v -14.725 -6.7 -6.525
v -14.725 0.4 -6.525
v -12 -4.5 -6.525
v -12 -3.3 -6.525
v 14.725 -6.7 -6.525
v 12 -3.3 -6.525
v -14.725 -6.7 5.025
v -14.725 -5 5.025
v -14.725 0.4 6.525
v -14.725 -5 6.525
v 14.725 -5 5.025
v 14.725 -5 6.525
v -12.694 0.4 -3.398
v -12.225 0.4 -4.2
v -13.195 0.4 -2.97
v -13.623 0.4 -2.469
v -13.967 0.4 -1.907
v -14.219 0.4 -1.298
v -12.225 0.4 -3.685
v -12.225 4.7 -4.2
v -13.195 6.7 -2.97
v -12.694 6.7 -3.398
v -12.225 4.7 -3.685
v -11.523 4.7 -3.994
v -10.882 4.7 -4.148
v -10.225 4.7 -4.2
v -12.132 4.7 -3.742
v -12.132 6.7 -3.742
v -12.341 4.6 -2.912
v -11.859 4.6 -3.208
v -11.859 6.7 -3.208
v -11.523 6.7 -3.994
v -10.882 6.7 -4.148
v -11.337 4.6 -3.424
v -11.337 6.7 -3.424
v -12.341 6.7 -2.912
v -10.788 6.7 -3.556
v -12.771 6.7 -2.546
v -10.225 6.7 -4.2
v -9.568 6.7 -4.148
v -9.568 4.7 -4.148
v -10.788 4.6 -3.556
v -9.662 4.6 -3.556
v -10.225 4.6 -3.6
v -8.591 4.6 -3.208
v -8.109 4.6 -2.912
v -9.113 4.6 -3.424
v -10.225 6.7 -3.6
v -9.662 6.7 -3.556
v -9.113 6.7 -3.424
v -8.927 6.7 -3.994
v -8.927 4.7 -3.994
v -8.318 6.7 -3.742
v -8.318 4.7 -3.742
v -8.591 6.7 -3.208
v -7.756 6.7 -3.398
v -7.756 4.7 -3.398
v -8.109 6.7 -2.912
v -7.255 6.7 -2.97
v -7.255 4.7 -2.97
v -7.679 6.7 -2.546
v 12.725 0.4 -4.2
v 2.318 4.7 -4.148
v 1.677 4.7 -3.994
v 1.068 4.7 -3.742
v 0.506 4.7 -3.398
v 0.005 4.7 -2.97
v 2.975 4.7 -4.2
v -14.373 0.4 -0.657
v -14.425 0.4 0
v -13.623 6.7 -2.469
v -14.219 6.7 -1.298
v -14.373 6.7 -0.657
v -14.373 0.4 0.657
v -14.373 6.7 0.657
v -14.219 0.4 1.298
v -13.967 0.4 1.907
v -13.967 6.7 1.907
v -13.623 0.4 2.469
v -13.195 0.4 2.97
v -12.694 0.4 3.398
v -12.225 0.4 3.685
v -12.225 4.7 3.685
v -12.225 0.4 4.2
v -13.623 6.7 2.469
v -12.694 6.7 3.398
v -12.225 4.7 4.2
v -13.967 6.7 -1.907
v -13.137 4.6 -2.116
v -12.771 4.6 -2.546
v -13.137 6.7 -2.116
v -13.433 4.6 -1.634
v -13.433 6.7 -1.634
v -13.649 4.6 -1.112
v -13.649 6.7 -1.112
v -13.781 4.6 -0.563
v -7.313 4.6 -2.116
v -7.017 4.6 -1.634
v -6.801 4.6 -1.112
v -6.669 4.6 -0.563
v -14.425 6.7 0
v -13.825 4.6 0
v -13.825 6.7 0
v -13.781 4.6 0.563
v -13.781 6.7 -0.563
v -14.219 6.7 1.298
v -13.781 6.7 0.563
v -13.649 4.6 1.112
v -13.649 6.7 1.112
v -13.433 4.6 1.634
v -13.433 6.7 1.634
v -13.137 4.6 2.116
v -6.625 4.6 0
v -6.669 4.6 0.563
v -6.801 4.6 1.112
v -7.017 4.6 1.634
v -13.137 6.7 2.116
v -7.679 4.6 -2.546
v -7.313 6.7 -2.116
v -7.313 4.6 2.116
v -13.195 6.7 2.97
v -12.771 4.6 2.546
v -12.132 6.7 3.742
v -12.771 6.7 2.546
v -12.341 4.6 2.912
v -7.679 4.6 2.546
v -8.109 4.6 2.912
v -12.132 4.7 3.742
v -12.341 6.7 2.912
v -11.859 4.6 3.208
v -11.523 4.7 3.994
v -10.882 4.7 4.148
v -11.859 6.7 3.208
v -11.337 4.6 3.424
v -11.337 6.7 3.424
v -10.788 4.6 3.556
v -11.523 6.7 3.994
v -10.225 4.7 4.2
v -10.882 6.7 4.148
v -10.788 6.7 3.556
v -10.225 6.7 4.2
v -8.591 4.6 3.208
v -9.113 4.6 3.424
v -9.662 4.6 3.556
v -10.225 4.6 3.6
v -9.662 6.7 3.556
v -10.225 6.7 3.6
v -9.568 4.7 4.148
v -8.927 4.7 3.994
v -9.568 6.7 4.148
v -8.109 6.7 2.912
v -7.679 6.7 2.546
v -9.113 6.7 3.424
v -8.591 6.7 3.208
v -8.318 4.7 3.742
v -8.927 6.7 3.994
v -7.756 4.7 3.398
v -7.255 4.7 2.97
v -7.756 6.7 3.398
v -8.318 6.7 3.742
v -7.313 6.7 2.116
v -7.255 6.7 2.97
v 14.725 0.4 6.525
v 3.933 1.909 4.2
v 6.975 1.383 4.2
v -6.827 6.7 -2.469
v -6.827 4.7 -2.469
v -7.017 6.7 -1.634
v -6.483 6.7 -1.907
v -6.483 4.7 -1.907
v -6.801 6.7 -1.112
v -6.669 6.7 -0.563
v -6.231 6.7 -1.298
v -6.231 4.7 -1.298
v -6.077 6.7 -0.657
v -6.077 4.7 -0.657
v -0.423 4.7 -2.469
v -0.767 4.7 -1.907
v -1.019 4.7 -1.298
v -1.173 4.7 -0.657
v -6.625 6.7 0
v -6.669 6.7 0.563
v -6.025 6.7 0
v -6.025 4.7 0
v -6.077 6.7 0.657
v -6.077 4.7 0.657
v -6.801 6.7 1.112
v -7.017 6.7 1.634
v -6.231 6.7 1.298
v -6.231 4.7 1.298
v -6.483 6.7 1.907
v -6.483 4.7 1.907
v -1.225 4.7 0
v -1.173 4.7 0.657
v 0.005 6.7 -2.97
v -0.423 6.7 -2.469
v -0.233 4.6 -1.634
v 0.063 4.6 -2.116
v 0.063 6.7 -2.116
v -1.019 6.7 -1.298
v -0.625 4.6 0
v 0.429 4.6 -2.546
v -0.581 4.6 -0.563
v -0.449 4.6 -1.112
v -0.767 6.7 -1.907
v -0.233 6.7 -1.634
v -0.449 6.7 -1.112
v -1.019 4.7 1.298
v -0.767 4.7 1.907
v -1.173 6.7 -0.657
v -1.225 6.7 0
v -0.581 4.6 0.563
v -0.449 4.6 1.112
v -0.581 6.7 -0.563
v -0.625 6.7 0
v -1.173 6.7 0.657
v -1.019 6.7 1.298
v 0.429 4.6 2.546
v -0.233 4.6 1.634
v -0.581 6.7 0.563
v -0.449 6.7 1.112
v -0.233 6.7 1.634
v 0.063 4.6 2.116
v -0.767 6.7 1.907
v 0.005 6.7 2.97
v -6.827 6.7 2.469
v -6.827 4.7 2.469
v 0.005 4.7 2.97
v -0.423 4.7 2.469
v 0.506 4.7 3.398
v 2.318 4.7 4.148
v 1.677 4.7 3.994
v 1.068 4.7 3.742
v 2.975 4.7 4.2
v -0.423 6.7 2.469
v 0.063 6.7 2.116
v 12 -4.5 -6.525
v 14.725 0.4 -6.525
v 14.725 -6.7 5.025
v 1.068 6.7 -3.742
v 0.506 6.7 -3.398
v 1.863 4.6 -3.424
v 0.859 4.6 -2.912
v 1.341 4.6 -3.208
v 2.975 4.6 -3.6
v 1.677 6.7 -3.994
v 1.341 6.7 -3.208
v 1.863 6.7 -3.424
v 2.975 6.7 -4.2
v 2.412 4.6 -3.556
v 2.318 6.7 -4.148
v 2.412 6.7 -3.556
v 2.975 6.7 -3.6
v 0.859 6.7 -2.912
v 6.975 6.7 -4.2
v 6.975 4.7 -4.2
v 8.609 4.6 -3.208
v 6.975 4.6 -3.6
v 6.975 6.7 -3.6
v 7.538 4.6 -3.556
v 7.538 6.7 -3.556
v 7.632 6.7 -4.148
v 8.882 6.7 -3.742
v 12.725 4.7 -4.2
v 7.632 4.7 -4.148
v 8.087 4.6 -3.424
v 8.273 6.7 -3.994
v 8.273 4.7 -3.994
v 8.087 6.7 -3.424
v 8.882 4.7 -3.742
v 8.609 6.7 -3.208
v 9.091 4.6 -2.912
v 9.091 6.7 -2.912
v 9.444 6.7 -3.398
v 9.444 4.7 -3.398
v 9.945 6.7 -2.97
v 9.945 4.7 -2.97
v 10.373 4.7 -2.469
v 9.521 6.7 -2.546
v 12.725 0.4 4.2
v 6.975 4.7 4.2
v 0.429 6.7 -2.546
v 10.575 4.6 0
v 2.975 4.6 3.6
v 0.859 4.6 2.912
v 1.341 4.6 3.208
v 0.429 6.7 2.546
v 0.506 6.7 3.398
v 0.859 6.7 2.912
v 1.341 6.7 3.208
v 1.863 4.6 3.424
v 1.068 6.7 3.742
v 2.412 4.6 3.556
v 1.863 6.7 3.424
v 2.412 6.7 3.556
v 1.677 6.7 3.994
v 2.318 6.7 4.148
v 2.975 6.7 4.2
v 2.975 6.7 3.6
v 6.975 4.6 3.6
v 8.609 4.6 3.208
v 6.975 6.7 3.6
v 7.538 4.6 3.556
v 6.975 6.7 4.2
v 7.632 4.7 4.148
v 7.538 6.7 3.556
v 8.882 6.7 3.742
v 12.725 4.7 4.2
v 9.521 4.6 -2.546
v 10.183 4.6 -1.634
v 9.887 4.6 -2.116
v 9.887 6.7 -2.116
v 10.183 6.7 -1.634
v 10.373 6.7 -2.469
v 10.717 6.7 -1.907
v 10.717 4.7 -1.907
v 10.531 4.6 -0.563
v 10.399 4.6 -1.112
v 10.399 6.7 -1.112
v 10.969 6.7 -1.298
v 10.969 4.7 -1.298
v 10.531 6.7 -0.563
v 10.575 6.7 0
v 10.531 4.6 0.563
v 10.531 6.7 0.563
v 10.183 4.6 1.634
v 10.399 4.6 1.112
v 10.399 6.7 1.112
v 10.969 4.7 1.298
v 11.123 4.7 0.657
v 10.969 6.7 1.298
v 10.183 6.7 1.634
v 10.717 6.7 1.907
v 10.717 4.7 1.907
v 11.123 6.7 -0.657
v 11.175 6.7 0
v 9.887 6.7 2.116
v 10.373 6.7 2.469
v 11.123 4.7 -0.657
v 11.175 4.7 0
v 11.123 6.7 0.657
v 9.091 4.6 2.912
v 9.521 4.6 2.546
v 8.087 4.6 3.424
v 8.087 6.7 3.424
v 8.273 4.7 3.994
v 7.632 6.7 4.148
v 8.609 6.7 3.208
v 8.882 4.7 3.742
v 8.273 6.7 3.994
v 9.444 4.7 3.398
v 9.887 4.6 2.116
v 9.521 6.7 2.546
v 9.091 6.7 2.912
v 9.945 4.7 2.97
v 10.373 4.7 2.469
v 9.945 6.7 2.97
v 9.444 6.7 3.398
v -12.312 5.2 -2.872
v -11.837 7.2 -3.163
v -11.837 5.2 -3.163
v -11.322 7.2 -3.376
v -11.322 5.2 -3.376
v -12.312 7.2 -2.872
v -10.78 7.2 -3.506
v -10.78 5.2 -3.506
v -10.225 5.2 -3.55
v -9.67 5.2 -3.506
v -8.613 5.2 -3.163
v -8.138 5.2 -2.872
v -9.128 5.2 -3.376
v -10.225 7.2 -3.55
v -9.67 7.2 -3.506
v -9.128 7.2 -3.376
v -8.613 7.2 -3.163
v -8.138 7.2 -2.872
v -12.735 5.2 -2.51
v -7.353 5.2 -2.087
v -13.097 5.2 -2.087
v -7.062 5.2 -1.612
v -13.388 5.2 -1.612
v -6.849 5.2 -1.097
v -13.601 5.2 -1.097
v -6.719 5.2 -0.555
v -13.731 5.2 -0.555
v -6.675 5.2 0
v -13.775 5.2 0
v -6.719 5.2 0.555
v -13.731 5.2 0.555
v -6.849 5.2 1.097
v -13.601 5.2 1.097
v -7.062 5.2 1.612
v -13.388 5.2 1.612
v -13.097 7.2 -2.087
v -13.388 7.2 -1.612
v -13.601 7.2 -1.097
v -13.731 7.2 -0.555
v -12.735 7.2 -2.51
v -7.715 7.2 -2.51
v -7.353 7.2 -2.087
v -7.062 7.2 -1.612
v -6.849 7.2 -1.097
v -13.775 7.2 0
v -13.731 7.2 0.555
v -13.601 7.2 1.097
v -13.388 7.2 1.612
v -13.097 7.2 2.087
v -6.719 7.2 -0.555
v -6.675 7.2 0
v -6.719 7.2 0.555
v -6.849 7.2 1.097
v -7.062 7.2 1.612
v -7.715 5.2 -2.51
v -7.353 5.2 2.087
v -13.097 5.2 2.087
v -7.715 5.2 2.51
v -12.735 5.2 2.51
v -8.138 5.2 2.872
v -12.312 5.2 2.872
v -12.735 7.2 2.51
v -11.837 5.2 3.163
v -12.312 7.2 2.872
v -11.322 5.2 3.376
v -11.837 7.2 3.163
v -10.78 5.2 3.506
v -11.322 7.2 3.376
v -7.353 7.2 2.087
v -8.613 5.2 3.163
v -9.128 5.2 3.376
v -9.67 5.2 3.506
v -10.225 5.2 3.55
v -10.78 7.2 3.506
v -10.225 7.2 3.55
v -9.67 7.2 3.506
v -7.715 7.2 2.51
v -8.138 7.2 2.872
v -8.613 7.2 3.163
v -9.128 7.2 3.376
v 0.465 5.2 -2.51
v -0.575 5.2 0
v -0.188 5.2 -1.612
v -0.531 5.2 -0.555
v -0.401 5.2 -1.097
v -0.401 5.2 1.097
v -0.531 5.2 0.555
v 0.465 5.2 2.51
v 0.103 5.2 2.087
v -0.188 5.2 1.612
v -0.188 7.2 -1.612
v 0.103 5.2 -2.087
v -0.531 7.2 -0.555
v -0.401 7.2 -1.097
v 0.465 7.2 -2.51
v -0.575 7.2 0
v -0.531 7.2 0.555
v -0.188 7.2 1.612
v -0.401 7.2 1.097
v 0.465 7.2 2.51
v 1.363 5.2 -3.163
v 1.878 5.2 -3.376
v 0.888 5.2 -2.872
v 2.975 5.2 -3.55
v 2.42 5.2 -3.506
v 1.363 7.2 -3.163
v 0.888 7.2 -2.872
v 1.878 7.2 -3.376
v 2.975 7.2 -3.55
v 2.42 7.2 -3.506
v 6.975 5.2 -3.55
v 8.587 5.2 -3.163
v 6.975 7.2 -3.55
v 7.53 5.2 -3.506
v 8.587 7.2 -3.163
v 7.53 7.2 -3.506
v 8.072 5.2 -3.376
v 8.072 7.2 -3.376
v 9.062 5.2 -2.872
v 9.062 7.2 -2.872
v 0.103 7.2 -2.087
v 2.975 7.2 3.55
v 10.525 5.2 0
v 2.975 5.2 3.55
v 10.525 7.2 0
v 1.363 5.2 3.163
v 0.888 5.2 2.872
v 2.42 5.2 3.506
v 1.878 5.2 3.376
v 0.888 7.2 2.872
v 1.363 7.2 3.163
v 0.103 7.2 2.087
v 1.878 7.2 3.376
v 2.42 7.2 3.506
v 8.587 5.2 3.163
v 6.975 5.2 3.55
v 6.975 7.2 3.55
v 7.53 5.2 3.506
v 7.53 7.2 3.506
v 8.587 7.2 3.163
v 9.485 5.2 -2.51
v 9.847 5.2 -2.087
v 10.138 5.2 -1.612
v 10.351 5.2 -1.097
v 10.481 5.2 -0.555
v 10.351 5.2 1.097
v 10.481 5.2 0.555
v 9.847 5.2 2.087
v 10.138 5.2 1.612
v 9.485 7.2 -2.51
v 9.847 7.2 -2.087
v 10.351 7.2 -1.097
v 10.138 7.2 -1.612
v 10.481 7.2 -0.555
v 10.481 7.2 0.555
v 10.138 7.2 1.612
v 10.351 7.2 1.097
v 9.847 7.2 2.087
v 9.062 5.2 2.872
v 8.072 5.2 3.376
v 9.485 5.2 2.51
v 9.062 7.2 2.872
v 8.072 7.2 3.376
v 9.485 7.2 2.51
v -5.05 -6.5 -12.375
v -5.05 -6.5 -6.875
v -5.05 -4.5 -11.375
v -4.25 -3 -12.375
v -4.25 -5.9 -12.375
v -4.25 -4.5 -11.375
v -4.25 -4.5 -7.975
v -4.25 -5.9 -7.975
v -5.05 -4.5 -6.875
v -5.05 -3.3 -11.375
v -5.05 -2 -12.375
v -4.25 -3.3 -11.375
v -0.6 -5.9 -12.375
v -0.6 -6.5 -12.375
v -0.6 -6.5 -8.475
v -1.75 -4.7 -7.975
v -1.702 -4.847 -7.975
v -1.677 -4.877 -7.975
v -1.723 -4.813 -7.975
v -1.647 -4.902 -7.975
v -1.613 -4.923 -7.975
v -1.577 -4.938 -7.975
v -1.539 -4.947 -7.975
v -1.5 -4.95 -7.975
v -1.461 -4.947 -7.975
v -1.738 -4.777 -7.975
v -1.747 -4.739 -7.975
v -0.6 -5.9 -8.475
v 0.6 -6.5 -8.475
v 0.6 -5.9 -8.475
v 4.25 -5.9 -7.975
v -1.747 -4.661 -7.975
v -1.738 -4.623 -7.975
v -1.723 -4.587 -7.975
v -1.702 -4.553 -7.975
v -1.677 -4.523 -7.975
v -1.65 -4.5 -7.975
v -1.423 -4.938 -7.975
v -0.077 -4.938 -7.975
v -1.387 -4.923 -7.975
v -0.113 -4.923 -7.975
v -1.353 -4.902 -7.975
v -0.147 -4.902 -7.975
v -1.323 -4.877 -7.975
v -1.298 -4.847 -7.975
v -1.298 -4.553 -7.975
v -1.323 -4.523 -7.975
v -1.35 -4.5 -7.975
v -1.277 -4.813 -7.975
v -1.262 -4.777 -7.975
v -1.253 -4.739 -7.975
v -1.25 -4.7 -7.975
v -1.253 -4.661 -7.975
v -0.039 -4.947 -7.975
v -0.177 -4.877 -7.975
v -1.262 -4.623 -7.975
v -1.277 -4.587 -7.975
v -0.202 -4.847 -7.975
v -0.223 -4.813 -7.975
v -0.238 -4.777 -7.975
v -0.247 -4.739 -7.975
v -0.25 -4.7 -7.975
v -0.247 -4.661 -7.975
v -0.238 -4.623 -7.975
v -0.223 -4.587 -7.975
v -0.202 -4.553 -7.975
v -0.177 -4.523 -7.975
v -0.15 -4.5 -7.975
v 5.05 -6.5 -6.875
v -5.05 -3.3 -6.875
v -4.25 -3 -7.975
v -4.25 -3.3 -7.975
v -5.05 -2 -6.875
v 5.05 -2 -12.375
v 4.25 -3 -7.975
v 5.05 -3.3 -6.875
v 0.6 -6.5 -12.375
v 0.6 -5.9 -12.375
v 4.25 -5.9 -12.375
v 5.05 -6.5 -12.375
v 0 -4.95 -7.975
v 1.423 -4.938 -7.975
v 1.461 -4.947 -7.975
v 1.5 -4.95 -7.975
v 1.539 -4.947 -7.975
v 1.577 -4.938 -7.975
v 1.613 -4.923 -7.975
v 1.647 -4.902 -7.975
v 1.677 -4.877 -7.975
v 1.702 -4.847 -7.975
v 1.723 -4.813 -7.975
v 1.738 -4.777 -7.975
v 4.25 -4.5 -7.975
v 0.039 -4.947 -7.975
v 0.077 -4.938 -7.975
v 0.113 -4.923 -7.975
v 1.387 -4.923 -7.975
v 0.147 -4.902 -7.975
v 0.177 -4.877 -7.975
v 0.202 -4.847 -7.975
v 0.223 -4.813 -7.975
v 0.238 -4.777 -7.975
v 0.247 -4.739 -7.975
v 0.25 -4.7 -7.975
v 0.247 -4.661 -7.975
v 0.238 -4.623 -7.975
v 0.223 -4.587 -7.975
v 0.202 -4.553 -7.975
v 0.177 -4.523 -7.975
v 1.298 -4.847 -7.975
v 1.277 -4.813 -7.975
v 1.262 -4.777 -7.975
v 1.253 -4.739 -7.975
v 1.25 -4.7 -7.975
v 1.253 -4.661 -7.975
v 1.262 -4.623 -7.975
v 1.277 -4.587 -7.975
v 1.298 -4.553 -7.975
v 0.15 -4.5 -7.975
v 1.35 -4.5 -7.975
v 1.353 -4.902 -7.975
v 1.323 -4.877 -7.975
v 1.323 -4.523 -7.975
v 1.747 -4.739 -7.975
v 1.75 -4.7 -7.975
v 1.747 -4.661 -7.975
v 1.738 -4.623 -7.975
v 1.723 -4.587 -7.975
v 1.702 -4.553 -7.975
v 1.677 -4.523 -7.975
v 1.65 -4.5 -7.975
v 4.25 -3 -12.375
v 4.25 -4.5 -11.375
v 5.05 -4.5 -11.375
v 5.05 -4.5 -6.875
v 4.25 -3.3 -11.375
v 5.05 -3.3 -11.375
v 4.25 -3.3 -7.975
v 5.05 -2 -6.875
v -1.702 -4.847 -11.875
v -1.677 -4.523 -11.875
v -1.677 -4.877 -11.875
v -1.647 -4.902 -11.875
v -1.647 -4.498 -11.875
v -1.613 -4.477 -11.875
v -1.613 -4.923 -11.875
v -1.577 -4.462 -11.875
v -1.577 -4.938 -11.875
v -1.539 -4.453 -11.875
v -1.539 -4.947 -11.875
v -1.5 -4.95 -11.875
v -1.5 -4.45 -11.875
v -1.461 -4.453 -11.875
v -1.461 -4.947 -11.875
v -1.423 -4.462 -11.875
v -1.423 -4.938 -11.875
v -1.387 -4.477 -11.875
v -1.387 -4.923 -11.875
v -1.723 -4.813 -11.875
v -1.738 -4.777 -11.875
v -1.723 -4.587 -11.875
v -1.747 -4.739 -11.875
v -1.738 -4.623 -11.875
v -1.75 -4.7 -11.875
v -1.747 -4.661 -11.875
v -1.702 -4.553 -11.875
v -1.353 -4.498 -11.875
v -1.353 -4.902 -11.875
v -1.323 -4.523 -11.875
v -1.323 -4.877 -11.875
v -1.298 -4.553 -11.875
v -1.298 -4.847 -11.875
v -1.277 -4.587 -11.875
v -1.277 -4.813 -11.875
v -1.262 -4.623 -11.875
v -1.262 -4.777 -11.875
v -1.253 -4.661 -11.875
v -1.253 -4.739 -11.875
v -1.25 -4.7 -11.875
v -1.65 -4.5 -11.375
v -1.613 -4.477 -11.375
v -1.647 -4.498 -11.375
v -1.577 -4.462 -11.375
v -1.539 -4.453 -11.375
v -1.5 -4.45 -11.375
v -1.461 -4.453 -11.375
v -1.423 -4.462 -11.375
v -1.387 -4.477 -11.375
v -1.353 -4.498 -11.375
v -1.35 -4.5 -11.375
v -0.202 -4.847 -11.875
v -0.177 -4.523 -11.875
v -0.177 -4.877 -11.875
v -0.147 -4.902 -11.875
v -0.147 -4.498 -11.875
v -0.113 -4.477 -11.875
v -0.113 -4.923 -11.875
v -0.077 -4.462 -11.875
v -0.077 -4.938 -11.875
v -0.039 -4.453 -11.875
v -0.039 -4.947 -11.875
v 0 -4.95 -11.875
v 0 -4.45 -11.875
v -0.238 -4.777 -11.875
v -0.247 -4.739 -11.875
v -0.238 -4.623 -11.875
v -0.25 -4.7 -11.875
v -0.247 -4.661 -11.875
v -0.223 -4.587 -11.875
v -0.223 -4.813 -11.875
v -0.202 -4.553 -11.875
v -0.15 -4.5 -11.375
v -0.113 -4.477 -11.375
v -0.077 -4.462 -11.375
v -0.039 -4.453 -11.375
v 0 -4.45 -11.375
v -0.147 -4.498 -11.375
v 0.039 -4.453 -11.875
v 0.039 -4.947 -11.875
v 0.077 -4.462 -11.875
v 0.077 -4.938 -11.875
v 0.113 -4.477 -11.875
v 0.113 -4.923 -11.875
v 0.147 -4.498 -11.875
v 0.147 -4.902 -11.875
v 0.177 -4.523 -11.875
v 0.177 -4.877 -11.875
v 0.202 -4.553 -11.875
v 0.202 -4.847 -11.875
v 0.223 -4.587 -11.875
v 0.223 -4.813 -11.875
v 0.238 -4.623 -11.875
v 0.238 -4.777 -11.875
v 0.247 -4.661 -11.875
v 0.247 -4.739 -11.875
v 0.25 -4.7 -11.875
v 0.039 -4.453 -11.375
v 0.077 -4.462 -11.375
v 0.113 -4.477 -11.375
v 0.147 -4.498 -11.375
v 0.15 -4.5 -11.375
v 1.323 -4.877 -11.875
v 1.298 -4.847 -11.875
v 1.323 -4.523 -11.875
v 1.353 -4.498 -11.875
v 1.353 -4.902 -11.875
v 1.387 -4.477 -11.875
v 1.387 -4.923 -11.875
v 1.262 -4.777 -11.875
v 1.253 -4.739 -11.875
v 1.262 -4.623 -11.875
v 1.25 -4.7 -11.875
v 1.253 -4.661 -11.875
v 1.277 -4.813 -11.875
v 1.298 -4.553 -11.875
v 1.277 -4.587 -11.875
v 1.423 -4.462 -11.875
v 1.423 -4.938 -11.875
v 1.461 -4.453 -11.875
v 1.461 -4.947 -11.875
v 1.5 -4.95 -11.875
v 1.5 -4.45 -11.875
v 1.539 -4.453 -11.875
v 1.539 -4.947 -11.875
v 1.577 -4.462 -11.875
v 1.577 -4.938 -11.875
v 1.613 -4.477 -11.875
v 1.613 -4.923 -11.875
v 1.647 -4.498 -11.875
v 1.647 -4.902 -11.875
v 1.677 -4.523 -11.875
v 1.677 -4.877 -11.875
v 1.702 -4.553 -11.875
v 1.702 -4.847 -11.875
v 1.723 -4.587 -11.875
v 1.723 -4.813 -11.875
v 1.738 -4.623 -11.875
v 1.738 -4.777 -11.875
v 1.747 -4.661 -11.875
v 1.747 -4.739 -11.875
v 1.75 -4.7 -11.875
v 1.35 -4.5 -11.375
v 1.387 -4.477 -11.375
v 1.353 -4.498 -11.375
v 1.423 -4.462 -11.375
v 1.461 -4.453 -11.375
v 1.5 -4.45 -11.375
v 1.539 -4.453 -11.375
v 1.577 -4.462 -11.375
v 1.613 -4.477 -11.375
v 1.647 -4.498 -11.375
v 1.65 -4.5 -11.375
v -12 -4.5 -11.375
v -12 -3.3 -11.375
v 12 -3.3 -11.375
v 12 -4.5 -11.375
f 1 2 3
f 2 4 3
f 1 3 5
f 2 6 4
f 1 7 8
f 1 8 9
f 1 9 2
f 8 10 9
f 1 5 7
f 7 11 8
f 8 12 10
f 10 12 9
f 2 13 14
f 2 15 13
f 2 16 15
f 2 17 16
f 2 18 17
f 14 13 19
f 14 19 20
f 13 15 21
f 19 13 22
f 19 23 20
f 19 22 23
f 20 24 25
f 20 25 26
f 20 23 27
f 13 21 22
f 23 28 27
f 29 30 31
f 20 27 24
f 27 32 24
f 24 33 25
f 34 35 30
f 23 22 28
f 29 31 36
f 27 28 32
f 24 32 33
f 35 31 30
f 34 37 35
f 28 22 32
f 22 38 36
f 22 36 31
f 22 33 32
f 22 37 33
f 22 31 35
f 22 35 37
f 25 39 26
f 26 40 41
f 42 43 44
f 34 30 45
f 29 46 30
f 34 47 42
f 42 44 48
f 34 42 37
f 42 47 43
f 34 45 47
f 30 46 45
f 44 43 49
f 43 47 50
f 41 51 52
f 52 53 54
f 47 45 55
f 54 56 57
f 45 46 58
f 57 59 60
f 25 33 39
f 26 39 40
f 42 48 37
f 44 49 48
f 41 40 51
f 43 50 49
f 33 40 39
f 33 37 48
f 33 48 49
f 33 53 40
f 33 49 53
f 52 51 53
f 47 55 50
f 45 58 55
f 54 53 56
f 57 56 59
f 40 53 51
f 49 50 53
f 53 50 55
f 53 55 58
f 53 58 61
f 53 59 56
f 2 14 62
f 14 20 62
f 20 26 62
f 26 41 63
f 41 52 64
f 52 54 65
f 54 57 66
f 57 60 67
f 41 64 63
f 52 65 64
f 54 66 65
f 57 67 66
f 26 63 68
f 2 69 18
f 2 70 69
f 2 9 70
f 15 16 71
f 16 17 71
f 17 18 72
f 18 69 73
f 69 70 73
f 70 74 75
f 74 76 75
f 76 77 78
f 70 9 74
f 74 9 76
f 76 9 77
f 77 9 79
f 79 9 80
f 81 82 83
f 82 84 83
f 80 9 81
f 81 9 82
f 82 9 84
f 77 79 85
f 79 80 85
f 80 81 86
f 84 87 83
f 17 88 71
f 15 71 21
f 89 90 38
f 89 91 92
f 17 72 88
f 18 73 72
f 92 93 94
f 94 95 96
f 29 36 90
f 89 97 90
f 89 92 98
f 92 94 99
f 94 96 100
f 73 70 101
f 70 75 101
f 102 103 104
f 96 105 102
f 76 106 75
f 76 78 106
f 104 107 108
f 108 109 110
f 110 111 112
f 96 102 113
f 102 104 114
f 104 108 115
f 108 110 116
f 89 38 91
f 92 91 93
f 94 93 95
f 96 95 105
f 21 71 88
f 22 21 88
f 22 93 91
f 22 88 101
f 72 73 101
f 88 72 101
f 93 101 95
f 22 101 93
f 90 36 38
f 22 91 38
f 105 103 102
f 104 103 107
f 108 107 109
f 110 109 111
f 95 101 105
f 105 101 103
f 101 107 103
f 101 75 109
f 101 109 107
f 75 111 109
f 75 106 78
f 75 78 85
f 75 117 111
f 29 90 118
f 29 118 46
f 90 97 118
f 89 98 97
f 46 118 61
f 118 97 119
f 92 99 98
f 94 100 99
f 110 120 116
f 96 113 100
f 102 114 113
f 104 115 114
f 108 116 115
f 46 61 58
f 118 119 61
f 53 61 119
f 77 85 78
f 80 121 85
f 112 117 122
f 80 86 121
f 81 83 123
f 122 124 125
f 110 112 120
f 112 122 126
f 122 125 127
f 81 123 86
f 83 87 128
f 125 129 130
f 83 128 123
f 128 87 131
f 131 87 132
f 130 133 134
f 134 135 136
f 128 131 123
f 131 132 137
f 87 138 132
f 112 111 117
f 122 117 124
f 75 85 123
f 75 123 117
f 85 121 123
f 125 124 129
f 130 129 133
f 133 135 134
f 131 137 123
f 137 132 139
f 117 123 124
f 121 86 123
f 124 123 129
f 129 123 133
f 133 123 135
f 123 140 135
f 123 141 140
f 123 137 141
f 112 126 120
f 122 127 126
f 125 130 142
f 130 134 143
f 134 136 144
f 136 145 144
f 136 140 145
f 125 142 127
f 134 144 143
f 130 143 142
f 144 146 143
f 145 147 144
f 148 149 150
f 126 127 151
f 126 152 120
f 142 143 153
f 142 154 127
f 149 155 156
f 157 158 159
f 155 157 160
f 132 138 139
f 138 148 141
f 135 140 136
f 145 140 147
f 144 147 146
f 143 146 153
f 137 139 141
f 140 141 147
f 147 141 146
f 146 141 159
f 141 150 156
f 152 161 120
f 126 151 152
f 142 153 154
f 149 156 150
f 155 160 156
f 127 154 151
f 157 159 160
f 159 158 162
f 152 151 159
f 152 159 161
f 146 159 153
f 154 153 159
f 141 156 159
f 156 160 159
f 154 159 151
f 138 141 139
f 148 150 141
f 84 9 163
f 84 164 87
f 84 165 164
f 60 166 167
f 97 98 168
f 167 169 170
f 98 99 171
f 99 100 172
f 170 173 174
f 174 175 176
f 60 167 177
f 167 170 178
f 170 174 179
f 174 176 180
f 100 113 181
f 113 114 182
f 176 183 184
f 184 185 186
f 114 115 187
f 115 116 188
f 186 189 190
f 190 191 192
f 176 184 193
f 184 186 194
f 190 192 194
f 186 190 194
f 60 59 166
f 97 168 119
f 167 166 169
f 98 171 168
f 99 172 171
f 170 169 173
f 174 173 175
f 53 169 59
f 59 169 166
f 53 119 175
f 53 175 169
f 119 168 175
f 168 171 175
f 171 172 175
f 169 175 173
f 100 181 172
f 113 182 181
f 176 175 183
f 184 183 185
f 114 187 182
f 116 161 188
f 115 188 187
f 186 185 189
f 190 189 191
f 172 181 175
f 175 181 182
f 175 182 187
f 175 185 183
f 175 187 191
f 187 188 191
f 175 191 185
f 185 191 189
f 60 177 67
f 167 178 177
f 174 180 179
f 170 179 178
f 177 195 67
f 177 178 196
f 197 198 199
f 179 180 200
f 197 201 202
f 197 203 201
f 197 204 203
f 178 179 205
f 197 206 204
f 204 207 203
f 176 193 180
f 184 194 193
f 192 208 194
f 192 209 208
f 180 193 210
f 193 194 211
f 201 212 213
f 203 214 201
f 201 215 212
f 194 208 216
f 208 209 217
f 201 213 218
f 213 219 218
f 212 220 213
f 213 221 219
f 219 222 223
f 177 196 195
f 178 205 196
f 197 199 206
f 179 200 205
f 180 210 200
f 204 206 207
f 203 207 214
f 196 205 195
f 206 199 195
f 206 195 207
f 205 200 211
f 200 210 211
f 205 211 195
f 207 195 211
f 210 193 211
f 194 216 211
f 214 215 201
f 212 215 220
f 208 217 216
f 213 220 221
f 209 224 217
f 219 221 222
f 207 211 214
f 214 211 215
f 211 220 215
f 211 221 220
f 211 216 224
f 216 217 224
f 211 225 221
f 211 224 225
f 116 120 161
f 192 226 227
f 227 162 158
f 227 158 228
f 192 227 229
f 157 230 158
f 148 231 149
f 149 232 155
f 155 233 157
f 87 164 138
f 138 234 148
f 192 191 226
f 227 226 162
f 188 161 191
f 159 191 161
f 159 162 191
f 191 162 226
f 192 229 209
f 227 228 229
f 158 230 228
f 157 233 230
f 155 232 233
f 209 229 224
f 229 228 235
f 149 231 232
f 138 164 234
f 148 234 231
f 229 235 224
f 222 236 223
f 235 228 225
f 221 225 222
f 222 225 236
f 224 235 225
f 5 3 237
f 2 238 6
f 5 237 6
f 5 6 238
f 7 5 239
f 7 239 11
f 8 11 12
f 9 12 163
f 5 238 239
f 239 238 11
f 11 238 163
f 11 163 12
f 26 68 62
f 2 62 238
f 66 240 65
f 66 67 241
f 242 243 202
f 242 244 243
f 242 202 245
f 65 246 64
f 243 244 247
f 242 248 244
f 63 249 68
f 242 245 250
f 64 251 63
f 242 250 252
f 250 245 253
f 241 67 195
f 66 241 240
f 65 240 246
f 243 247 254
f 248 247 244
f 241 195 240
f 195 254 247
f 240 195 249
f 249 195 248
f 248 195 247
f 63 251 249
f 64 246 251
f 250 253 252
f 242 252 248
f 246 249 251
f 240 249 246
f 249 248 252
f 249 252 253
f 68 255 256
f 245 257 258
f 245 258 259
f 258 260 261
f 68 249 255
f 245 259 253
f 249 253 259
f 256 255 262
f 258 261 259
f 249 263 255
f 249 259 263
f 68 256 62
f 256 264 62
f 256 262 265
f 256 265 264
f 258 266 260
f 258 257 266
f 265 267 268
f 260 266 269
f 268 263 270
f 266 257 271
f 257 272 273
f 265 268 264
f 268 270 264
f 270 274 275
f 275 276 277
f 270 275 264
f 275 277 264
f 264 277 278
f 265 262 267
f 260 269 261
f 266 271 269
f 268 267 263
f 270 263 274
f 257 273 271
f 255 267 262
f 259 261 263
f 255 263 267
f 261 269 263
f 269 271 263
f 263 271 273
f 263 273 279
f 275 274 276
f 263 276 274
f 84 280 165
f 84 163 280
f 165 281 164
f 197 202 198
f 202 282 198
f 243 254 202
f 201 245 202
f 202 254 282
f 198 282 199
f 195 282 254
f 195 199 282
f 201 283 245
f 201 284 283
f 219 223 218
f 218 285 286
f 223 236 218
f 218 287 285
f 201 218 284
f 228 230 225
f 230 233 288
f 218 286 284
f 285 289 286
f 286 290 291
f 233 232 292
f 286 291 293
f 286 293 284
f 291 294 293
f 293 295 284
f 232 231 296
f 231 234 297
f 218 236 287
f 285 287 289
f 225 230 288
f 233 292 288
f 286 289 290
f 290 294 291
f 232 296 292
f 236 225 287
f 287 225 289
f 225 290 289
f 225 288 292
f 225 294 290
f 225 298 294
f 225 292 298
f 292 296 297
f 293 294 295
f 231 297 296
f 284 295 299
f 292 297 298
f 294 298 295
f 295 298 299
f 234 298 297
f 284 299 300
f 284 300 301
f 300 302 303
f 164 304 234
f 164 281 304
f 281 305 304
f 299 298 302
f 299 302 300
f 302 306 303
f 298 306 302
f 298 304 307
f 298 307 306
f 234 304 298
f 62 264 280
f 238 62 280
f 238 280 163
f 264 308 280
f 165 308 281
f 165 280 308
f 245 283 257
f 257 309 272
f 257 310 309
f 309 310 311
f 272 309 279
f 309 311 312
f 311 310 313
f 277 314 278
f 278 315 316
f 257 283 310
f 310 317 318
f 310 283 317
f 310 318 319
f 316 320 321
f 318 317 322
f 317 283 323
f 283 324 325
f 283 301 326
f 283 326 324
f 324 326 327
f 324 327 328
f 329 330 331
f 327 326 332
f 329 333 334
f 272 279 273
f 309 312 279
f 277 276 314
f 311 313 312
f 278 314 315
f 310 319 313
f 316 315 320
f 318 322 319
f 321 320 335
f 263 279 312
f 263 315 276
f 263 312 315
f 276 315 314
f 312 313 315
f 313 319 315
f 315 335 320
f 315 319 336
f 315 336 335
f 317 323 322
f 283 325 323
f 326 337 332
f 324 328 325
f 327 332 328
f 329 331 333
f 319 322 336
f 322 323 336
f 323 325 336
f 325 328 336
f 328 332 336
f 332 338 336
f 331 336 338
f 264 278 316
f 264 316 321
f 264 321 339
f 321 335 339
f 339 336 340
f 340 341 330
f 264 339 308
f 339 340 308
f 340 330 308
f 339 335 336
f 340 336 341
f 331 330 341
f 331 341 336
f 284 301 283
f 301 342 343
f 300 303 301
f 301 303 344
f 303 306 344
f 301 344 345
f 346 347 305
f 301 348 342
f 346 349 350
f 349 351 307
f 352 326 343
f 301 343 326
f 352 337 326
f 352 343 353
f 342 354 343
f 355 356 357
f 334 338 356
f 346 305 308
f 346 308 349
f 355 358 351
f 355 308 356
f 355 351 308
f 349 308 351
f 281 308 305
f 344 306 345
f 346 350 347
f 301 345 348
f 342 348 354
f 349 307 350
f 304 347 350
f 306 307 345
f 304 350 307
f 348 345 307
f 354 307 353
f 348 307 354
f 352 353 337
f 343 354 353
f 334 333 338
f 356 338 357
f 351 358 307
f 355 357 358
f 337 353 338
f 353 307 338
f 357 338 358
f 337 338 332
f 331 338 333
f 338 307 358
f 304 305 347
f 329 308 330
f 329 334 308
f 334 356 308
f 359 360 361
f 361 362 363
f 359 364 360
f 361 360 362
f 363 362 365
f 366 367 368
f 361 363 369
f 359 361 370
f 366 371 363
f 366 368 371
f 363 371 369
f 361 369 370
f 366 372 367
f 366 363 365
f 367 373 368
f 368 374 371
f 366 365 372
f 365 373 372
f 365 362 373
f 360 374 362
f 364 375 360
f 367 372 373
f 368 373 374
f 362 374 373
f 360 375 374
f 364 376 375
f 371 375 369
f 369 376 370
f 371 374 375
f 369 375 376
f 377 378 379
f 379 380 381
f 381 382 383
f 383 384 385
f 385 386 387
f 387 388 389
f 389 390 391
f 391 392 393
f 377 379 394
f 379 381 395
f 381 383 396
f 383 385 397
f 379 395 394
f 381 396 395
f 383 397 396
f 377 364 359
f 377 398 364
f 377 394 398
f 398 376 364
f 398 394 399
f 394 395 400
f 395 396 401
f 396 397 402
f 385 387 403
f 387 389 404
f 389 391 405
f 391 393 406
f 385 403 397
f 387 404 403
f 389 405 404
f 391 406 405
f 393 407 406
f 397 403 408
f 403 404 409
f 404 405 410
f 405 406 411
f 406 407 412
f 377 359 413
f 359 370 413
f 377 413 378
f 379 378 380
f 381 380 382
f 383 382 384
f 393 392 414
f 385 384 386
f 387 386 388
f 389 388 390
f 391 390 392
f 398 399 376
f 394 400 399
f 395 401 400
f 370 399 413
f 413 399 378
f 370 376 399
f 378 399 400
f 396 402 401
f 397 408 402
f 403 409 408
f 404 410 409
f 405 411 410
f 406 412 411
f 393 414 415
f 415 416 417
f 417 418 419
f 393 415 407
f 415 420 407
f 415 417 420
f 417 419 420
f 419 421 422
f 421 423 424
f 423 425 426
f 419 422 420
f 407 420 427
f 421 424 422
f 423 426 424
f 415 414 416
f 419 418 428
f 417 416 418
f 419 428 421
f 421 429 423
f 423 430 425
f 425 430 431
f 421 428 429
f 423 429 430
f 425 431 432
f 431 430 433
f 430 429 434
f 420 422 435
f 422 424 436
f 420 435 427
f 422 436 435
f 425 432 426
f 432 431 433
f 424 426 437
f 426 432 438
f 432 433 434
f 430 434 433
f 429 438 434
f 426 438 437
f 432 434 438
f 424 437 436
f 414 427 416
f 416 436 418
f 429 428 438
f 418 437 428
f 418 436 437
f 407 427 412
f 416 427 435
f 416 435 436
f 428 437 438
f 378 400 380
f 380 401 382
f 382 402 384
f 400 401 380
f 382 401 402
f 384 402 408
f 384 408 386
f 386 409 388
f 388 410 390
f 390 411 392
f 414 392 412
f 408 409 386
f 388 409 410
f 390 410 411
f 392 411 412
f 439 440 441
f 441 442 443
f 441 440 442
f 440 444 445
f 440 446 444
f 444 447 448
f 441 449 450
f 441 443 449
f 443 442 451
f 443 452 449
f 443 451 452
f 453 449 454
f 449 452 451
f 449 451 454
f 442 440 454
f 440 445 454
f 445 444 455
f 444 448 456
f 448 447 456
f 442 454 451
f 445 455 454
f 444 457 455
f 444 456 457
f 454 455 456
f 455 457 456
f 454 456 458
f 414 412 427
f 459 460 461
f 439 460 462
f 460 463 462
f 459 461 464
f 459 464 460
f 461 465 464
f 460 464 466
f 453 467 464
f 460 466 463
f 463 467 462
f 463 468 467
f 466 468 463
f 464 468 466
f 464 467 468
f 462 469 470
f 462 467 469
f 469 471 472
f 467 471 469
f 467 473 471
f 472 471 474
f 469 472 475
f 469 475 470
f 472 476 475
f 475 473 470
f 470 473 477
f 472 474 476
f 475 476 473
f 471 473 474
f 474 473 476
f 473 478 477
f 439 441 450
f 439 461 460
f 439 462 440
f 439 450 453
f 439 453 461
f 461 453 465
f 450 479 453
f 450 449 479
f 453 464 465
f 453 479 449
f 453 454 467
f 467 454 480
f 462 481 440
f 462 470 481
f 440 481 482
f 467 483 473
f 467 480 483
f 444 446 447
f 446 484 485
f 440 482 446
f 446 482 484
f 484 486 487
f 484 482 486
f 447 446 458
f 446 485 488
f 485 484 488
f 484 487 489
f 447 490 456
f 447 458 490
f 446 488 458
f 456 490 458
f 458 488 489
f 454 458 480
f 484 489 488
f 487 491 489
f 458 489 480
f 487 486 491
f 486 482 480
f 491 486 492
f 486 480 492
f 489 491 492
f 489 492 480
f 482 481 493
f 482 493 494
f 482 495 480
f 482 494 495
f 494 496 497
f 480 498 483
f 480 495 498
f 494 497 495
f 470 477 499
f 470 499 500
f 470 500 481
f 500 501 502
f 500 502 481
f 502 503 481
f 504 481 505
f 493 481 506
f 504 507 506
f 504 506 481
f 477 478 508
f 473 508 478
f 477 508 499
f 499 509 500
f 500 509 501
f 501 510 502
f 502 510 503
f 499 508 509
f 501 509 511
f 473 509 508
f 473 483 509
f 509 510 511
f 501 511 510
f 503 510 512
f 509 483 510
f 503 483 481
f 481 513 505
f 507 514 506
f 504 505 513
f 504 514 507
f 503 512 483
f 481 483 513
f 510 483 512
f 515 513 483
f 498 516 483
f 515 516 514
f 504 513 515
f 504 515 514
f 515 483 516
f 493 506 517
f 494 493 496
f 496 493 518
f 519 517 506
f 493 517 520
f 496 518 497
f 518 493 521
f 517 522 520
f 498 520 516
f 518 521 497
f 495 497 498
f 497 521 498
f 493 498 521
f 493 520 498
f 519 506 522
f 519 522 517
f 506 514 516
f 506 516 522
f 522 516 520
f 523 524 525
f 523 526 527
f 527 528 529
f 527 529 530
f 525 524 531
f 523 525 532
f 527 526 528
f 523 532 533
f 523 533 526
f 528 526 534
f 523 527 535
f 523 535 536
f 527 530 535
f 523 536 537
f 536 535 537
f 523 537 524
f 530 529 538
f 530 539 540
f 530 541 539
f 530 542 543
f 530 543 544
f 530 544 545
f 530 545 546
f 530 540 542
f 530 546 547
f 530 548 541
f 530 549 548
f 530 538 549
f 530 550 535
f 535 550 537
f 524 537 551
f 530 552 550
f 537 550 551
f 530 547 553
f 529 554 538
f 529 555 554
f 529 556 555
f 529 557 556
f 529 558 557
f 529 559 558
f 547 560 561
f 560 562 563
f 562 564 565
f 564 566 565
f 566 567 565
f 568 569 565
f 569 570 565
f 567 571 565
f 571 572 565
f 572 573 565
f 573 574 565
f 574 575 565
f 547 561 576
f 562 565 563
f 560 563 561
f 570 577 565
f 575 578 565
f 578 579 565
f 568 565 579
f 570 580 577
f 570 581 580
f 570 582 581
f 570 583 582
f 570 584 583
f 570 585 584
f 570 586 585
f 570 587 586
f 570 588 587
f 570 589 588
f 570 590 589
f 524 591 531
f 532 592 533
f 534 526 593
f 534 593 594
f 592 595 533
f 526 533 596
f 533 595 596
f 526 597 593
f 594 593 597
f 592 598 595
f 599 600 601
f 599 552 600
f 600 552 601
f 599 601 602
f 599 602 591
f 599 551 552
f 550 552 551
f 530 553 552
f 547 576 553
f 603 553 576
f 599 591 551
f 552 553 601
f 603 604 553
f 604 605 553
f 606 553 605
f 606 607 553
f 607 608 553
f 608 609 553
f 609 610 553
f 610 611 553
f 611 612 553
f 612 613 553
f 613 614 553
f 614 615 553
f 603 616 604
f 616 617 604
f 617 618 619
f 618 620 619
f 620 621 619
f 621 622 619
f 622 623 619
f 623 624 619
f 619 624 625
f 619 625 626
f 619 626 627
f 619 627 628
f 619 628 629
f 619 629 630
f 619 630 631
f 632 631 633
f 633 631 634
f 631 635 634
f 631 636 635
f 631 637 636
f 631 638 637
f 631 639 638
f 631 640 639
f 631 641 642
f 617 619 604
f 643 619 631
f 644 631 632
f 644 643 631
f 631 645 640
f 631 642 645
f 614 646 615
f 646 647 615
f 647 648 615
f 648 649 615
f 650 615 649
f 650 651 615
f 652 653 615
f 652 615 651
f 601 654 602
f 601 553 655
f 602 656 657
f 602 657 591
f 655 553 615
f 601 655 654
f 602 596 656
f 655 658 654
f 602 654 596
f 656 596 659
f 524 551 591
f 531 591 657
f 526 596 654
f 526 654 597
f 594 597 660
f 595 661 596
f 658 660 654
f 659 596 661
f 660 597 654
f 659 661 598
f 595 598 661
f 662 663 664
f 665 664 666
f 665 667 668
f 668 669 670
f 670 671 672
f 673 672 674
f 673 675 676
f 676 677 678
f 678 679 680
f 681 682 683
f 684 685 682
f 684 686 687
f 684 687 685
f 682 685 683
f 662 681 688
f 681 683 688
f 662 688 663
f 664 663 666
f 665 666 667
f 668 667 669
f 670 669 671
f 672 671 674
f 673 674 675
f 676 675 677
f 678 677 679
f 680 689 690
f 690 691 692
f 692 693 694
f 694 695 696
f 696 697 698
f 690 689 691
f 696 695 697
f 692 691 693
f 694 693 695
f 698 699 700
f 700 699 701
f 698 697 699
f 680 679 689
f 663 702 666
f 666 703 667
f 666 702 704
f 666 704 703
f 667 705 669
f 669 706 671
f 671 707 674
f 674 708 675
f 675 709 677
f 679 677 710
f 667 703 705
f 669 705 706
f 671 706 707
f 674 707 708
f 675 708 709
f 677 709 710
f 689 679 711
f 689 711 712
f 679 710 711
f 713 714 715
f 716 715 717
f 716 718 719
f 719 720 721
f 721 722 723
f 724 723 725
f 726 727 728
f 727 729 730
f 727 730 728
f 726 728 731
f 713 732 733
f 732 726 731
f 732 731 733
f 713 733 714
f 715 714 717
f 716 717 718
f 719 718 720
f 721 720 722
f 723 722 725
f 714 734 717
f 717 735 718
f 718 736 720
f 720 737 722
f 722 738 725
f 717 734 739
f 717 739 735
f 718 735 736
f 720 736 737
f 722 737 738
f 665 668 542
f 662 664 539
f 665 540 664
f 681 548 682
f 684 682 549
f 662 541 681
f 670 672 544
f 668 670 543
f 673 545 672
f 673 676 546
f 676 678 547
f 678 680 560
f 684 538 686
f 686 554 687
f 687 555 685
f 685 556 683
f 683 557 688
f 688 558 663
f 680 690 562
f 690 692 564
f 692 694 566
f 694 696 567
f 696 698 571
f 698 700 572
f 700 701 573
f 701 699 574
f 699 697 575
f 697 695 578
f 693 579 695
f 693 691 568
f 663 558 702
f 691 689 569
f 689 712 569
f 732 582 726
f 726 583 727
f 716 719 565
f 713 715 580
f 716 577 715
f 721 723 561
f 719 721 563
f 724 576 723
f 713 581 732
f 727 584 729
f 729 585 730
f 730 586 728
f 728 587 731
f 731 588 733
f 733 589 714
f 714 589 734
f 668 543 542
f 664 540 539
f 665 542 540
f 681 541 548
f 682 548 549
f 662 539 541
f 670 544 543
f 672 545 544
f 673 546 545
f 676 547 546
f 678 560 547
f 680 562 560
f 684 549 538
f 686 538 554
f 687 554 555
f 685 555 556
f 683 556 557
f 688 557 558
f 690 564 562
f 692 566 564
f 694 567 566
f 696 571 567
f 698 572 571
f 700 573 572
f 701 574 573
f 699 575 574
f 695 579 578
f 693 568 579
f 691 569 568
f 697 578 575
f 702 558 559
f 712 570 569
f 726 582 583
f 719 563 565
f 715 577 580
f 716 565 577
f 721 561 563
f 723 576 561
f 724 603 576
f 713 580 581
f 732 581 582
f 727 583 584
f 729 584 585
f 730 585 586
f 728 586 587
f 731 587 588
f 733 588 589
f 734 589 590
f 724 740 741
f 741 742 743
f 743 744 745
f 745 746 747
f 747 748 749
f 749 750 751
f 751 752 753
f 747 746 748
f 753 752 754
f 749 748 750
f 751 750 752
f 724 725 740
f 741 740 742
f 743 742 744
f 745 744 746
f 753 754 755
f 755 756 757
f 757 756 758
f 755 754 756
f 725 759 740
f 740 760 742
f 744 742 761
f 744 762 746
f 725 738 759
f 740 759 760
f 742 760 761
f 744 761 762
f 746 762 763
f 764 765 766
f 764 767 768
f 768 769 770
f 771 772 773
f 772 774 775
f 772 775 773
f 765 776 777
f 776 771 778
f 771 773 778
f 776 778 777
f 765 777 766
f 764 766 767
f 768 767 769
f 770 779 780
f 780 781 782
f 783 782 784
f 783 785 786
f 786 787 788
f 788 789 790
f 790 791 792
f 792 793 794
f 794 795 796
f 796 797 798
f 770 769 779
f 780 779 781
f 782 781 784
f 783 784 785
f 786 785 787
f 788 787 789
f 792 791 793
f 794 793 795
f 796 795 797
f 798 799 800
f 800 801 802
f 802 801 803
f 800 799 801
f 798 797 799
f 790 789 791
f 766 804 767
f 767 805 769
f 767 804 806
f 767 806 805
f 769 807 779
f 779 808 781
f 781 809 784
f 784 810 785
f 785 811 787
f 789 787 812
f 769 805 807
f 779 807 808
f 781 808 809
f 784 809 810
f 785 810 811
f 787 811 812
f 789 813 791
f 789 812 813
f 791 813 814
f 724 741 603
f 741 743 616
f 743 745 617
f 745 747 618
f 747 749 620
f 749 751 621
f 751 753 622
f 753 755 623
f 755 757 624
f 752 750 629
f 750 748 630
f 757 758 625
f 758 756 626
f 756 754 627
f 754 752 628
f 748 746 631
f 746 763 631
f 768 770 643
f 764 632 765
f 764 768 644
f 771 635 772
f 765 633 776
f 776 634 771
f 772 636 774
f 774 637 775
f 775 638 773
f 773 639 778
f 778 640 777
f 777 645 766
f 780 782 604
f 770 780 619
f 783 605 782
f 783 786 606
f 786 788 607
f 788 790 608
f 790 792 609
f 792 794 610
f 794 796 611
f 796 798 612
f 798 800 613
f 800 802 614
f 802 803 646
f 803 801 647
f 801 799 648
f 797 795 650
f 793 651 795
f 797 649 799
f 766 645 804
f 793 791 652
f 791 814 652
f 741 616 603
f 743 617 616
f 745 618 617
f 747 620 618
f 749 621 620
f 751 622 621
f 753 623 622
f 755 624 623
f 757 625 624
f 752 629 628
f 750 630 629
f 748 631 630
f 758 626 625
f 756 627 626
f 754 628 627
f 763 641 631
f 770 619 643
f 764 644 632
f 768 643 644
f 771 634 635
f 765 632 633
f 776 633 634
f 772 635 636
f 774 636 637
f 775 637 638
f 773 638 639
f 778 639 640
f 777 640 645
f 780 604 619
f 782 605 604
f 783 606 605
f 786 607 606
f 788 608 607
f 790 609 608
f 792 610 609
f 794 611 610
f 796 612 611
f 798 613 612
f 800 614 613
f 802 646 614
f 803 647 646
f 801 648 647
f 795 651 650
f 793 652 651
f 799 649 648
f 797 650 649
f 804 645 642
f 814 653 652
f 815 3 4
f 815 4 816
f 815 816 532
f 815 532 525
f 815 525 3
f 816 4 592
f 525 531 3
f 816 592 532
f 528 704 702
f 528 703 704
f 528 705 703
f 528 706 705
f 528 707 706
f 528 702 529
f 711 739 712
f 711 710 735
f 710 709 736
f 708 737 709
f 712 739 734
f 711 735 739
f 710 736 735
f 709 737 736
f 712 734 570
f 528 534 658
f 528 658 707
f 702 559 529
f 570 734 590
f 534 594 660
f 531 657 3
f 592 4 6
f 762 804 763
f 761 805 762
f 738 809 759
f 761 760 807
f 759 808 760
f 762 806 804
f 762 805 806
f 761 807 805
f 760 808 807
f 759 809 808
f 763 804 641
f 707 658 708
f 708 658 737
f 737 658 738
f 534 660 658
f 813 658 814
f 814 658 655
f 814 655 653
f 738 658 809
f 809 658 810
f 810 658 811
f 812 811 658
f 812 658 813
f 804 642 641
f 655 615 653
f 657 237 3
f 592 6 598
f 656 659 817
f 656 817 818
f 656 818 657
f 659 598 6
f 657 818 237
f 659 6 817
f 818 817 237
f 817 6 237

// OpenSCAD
// Sharp Distance Measuring Sensor GP2Y0D413K0F
// Unit: mm
// Origin: Center of main lens case
// -Z axis: Mounting surface / PWB & Connector side

$fn = 40;

// Dimensions from datasheet
W_CASE    = 29.45;  // Total width
H_CASE    = 13.05;  // Main case height
D_BASE    = 7.1;    // Case rear base depth
D_FRONT   = 6.3;    // Front lens housing depth (total front protrusion)
D_RIM     = 2.0;    // Front-most lens rim protrusion
H_TOTAL   = 18.9;   // Total height including connector
H_LENS_OUT= 8.4;    // Front housing height
H_LENS_IN = 7.2;    // Lens aperture height

// Center positions along X (Left edge is at X = -W_CASE/2)
X_EMITTER  = -W_CASE/2 + 4.5;   // *4.5 mm from left
X_DETECTOR = -W_CASE/2 + 19.7;  // *19.7 mm from left

// Front/Back Y coordinates (Origin Y=0 is center of total depth = D_BASE + D_FRONT = 13.4mm)
D_TOTAL   = D_BASE + D_FRONT;
Y_BACK    = -D_TOTAL / 2;               // -6.7 mm
Y_MID     = Y_BACK + D_BASE;            // +0.4 mm
Y_FRONT_M = Y_MID + (D_FRONT - D_RIM);  // +4.7 mm
Y_FRONT   = D_TOTAL / 2;                // +6.7 mm

// Colors
COLOR_CASE      = [0.15, 0.15, 0.15];   // Carbonic ABS (conductive black resin)
COLOR_LENS      = [0.20, 0.05, 0.10];   // Visible light cut-off acrylic resin
COLOR_PWB       = [0.60, 0.42, 0.20];   // Paper phenol (brown)
COLOR_CONNECTOR = [0.90, 0.90, 0.86];   // Connector body (natural / white)
COLOR_PIN       = [0.85, 0.75, 0.30];   // Brass / Gold plated pins

// --- Main Assembly ---
gp2y0d413k0f();

module gp2y0d413k0f() {
    main_case();
    lenses();
    pwb_and_connector();
}

// --- Main Case (Carbonic ABS) ---
module main_case() {
    color(COLOR_CASE) {
        difference() {
            union() {
                // 1. Rear Base Body
                translate([-W_CASE/2, Y_BACK, -H_CASE/2])
                    cube([W_CASE, D_BASE, H_CASE]);

                // 2. Middle Protrusion (Front housing base)
                translate([-W_CASE/2 + 2.5, Y_MID - 0.01, -H_LENS_OUT/2])
                    cube([W_CASE - 4.5, D_FRONT - D_RIM + 0.01, H_LENS_OUT]);

                // 3. Emitter Barrel (Left)
                hull() {
                    translate([X_EMITTER, Y_MID, 0])
                        rotate([-90, 0, 0])
                        cylinder(d = H_LENS_OUT, h = D_FRONT);
                }

                // 4. Detector Housing (Right oval shape)
                hull() {
                    translate([X_DETECTOR - 2.0, Y_MID, 0])
                        rotate([-90, 0, 0])
                        cylinder(d = H_LENS_OUT, h = D_FRONT);
                    translate([X_DETECTOR + 2.0, Y_MID, 0])
                        rotate([-90, 0, 0])
                        cylinder(d = H_LENS_OUT, h = D_FRONT);
                }
            }

            // Lens Aperture Cutouts
            // Emitter hole
            translate([X_EMITTER, Y_FRONT - D_RIM - 0.1, 0])
                rotate([-90, 0, 0])
                cylinder(d = H_LENS_IN, h = D_RIM + 0.2);

            // Detector hole (Oblong)
            hull() {
                translate([X_DETECTOR - 2.0, Y_FRONT - D_RIM - 0.1, 0])
                    rotate([-90, 0, 0])
                    cylinder(d = H_LENS_IN, h = D_RIM + 0.2);
                translate([X_DETECTOR + 2.0, Y_FRONT - D_RIM - 0.1, 0])
                    rotate([-90, 0, 0])
                    cylinder(d = H_LENS_IN, h = D_RIM + 0.2);
            }

            // Top decorative notch / step
            translate([-W_CASE/2 - 0.1, Y_BACK - 0.1, H_CASE/2 - 1.5])
                cube([W_CASE + 0.2, 1.8, 1.6]);
        }
    }
}

// --- Optical Lenses ---
module lenses() {
    color(COLOR_LENS) {
        // Emitter Lens (Spherical Convex)
        intersection() {
            translate([X_EMITTER, Y_FRONT - D_RIM + 0.5, 0])
                rotate([-90, 0, 0])
                cylinder(d = H_LENS_IN - 0.1, h = D_RIM);
            
            translate([X_EMITTER, Y_FRONT - 1.5, 0])
                sphere(d = 8.5);
        }

        // Detector Lens (Cylindrical / Oblong Convex)
        intersection() {
            hull() {
                translate([X_DETECTOR - 2.0, Y_FRONT - D_RIM + 0.5, 0])
                    rotate([-90, 0, 0])
                    cylinder(d = H_LENS_IN - 0.1, h = D_RIM);
                translate([X_DETECTOR + 2.0, Y_FRONT - D_RIM + 0.5, 0])
                    rotate([-90, 0, 0])
                    cylinder(d = H_LENS_IN - 0.1, h = D_RIM);
            }

            hull() {
                translate([X_DETECTOR - 2.0, Y_FRONT - 1.5, 0])
                    sphere(d = 8.5);
                translate([X_DETECTOR + 2.0, Y_FRONT - 1.5, 0])
                    sphere(d = 8.5);
            }
        }
    }
}

// --- PWB & Connector (-Z direction) ---
module pwb_and_connector() {
    pwb_thick = 1.2;
    pwb_w     = 24.0;
    pwb_h     = H_TOTAL - H_CASE; // 5.85 mm extension below case
    conn_w    = 10.1;
    conn_d    = 4.5;
    conn_h    = 5.5;

    // PWB
    color(COLOR_PWB) {
        translate([-pwb_w/2, Y_BACK + 2.2, -H_CASE/2 - pwb_h + 1.0])
            cube([pwb_w, pwb_thick, pwb_h - 1.0]);
    }

    // Connector Housing (JCTC 12001W90-3P-HF compatible)
    color(COLOR_CONNECTOR) {
        difference() {
            // Connector Body
            translate([-conn_w/2, Y_BACK + 0.2, -H_CASE/2 - pwb_h])
                cube([conn_w, conn_d, conn_h]);

            // Inner Cavity (faces downward / -Z)
            translate([-conn_w/2 + 0.8, Y_BACK + 0.8, -H_CASE/2 - pwb_h - 0.1])
                cube([conn_w - 1.6, conn_d - 1.6, conn_h - 1.0]);

            // Center Keyway notch
            translate([-0.6, Y_BACK - 0.1, -H_CASE/2 - pwb_h - 0.1])
                cube([1.2, 1.2, conn_h - 1.5]);
        }
    }

    // Metal Pins (3-pin: Vo, GND, Vcc)
    color(COLOR_PIN) {
        pin_pitch = 1.5;
        for (i = [-1:1]) {
            translate([i * pin_pitch, Y_BACK + 2.0, -H_CASE/2 - pwb_h + 0.5])
                cylinder(d = 0.5, h = conn_h - 1.2);
        }
    }
}
